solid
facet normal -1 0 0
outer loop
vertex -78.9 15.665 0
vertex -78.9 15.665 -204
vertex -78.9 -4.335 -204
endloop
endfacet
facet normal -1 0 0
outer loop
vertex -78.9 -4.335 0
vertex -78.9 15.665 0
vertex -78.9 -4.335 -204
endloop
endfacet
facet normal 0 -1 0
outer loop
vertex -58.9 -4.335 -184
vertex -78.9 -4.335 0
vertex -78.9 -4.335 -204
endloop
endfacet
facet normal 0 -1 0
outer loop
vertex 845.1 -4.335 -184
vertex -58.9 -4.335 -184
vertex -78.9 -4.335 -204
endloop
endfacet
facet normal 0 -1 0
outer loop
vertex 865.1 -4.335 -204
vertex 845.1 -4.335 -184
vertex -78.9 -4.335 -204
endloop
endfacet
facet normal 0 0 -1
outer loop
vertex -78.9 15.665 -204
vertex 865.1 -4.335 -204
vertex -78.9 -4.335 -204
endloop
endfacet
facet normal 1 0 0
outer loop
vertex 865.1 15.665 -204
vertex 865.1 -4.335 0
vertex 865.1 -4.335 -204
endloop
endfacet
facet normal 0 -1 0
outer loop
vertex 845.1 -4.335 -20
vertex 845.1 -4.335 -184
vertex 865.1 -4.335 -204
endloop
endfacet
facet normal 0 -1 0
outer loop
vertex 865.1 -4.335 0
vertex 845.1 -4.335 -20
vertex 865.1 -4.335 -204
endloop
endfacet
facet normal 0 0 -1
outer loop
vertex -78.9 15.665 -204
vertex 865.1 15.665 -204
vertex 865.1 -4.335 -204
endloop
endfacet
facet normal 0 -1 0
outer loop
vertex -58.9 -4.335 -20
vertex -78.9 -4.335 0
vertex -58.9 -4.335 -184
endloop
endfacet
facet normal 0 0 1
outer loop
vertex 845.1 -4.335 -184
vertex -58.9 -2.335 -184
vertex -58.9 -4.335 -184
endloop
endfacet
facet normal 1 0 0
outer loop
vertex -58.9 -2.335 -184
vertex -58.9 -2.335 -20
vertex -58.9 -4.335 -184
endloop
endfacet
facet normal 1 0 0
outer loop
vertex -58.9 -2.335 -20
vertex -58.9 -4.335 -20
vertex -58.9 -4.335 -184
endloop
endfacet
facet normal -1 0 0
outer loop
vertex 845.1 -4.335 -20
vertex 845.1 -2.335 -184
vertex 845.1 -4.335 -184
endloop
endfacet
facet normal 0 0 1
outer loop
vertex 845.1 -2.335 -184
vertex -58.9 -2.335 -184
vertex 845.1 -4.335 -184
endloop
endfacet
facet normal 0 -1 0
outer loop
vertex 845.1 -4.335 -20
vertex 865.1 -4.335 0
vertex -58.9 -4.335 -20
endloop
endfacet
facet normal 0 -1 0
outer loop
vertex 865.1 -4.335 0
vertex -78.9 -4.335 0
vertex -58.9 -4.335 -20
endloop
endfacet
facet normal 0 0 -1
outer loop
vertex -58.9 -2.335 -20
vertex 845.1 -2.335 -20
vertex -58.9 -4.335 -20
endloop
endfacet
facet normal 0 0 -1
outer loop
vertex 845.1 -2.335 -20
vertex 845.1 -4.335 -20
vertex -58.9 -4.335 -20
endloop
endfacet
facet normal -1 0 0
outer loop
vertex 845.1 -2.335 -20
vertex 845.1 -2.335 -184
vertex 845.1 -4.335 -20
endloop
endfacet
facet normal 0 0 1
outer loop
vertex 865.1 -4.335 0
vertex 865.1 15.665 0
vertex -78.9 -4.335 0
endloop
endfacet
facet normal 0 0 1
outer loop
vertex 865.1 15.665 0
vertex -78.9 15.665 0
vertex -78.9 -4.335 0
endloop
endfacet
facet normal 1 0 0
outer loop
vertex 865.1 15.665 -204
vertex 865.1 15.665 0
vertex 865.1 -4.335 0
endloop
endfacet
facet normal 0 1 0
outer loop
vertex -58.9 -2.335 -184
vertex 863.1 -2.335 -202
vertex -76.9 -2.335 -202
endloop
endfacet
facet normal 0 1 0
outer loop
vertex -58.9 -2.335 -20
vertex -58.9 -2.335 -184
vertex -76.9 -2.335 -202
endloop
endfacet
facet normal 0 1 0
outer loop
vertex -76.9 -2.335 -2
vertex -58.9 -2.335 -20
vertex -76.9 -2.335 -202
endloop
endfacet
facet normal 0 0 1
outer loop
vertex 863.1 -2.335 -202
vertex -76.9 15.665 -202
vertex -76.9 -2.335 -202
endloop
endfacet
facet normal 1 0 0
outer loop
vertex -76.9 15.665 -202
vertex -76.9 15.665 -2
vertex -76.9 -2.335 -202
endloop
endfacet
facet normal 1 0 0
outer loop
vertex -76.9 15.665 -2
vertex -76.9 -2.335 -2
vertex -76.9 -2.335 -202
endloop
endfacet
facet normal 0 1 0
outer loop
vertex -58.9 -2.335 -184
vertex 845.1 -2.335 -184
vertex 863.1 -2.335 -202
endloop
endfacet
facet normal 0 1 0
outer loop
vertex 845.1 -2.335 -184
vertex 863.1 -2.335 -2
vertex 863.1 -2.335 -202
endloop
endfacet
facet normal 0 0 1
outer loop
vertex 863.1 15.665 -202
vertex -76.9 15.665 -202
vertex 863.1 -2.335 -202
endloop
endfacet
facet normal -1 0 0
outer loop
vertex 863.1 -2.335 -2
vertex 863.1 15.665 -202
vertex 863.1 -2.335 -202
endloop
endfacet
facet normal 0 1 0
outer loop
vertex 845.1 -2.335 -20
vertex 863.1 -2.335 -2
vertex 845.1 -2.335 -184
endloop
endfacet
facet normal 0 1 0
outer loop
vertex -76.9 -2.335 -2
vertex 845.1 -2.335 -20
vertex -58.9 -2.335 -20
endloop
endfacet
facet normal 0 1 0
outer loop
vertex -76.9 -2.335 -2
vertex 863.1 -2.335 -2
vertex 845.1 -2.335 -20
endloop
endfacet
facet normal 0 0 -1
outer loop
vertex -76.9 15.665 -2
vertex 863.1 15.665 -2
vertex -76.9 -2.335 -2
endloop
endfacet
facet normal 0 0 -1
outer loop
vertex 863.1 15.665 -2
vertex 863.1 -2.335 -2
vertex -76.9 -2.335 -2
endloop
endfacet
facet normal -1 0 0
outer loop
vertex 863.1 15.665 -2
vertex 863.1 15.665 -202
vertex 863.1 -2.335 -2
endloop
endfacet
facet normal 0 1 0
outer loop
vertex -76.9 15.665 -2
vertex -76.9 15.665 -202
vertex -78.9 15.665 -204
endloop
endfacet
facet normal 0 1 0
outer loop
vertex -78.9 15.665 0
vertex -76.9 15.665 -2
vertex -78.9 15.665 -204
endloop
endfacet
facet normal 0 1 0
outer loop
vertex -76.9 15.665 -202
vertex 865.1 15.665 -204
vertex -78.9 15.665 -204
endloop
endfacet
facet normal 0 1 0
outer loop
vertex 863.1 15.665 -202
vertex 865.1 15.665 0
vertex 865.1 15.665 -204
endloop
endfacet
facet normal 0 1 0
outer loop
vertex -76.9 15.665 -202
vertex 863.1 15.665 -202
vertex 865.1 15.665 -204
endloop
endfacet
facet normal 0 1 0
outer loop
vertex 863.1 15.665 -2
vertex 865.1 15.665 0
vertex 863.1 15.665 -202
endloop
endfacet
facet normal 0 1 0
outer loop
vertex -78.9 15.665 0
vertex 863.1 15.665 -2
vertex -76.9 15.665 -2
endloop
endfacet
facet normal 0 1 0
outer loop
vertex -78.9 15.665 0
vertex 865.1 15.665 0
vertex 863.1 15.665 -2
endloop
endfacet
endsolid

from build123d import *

# Parameters (mm, degrees)
SKETCH1_W           = 944
SKETCH1_H           = 20
BOSS_EXTRUDE1_DEPTH = 204
CUT_EXTRUDE1_DEPTH  = 18
CUT_EXTRUDE2_DEPTH  = 2


with BuildPart() as part:
    # Sketch1 → Boss-Extrude1 (new body)
    with BuildSketch(Plane.XY):
        with Locations((393.099899989, 5.665003505)):
            Rectangle(SKETCH1_W, SKETCH1_H)
    extrude(amount=-BOSS_EXTRUDE1_DEPTH)

    # 3DSketch1 → Cut-Extrude1 (cut)
    with BuildSketch(Plane(origin=(863.099899989, 15.665003505, -202), x_dir=(-0.9781059289848355, 0, 0.2081076444648586), z_dir=(0, -1, 0))):
        Polygon((0, 0), (919.419573246, 195.621185797), (961.041102139, 0), (41.621528893, -195.621185797), align=None)
    extrude(amount=CUT_EXTRUDE1_DEPTH, mode=Mode.SUBTRACT)

    # 3DSketch2 → Cut-Extrude2 (cut)
    with BuildSketch(Plane(origin=(-58.900100011, -2.334996495, -184), x_dir=(0.9839394949368245, 0, 0.1785022977540257), z_dir=(0, -1, 0))):
        Polygon((0, 0), (889.481303423, -161.36607717), (918.755680255, 0), (29.274376832, 161.36607717), align=None)
    extrude(amount=CUT_EXTRUDE2_DEPTH, mode=Mode.SUBTRACT)


solid = part.part
